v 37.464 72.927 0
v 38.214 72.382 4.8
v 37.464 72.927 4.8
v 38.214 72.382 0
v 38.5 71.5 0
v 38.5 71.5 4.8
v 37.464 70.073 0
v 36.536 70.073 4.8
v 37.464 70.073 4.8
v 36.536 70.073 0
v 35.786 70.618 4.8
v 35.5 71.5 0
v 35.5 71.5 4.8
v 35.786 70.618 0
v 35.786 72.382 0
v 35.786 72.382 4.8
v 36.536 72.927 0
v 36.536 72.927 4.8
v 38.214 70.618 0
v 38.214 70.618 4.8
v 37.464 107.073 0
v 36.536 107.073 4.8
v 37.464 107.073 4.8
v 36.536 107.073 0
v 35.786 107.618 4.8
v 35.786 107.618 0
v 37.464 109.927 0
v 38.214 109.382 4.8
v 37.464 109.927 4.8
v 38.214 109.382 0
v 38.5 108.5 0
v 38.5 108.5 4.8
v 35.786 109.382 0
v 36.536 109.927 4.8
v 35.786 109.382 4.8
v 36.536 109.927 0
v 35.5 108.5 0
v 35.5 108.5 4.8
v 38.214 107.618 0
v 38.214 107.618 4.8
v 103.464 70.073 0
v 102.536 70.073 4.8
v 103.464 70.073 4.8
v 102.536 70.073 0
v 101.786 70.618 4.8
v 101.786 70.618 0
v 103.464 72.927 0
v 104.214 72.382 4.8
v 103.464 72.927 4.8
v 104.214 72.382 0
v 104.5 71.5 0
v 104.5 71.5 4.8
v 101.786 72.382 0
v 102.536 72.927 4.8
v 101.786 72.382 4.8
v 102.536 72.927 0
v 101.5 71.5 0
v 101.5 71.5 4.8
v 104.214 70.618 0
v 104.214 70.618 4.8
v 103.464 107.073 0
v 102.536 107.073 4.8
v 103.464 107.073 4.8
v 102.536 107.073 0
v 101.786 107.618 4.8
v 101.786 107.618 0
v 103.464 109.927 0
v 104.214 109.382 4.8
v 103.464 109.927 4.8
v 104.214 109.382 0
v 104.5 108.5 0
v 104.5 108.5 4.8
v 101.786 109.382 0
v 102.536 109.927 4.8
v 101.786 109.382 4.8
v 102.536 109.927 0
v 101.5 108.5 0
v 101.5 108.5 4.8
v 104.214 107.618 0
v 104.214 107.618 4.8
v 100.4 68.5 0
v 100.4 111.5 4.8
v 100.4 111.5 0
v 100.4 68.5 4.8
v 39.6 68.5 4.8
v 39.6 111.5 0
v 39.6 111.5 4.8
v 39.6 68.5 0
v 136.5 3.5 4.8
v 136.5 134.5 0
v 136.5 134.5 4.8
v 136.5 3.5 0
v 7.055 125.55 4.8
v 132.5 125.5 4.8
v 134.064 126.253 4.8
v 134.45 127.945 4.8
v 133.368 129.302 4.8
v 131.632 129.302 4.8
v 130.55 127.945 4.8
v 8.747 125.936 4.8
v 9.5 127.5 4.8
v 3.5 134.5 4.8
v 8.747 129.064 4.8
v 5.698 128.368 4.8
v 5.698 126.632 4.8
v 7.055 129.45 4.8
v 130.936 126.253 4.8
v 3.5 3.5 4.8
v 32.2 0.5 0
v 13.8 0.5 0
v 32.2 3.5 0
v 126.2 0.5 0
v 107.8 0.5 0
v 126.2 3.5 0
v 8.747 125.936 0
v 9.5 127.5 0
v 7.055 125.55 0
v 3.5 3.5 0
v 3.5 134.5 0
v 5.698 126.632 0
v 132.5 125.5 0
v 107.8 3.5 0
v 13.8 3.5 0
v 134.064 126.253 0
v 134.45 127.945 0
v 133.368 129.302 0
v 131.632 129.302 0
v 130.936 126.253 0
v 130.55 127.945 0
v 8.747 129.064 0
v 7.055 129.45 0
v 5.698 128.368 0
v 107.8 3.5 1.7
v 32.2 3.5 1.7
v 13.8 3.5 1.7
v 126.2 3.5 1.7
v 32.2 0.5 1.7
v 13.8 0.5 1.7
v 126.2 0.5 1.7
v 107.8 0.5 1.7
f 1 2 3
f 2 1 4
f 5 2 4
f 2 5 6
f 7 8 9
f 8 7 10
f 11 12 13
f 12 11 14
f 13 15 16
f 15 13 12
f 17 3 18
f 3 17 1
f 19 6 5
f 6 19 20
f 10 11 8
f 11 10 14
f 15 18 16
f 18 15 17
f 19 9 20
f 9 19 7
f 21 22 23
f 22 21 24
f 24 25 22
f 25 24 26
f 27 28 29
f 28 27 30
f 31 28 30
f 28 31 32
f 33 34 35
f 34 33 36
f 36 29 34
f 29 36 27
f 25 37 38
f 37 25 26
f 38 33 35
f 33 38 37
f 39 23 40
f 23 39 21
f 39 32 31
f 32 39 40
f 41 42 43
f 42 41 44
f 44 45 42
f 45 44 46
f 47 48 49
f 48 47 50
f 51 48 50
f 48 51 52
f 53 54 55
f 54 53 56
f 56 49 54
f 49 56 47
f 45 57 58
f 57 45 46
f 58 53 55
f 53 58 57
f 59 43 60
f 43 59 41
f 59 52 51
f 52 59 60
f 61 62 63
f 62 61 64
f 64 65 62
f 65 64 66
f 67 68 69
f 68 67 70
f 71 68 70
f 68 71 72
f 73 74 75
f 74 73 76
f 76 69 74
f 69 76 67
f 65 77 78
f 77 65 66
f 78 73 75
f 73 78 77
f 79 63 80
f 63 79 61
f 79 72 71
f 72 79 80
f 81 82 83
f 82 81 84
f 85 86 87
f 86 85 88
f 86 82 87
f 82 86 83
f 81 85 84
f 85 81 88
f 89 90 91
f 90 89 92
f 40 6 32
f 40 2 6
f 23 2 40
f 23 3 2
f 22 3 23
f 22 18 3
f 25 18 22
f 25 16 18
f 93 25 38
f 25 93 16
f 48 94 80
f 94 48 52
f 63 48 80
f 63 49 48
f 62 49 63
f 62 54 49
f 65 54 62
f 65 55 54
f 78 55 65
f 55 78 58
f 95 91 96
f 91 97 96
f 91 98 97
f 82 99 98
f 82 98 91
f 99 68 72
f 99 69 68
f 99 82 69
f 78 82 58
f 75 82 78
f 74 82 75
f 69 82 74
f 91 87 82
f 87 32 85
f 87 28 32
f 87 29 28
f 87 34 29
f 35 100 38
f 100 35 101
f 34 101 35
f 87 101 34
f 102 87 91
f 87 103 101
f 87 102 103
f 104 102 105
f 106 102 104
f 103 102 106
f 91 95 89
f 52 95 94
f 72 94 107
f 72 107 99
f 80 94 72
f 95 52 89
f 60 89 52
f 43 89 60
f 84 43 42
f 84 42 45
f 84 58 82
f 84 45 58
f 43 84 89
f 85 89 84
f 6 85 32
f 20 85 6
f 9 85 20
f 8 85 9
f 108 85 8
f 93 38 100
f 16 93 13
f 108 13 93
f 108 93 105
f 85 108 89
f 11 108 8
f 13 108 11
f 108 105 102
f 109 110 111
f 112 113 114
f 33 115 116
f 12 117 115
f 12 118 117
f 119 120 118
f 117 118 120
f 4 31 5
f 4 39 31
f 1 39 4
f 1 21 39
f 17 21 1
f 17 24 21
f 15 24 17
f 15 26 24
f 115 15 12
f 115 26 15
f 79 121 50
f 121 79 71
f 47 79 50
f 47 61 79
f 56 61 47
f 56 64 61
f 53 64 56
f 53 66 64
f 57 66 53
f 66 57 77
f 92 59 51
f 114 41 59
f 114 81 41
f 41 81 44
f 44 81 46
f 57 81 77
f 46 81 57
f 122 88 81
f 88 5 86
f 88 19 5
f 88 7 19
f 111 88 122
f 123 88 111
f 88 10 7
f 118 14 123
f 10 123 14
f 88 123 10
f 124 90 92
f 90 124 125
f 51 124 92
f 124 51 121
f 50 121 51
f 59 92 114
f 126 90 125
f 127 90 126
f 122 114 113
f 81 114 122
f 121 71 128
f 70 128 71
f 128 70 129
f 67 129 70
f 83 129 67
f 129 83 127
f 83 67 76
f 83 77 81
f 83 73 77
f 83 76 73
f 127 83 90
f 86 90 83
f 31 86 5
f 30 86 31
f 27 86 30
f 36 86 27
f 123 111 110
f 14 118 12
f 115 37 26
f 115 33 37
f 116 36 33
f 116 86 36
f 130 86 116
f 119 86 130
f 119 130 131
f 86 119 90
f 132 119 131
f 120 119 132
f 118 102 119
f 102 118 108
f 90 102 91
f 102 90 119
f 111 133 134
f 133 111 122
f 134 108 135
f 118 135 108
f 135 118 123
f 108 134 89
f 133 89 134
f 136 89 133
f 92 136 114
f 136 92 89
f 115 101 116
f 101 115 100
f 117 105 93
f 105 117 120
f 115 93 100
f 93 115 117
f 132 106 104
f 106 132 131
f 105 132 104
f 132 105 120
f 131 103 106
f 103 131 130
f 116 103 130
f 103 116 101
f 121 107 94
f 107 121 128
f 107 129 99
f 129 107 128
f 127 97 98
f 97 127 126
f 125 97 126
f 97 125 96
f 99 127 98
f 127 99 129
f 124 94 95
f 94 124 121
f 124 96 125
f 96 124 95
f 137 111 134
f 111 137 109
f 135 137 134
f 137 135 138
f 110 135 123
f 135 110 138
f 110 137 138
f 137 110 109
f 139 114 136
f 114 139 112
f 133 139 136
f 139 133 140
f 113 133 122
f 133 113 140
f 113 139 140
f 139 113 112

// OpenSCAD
wall_thickness = 3;
case_depth = 135;
case_width = 140;
case_height = 72;

hole_radius = 2;

lid_height = 5; // Should be 5
tab_width = 20; // The width of the tabs on the lid

wall_tolerance = 1;
tab_tolerance = .8;

screw_radius = (4 / 2);
screw_length = ((15 - 5) / 2);



LCD2004_BOARD_WIDTH = 60.8;
LCD2004_BOARD_HEIGHT = 42;

module LCD2004() {
    
    screw_hole_diameter = 3;
    panel_width = LCD2004_BOARD_WIDTH;
    board_width = panel_width;
    screw_width = 66;

    panel_height = 43;
    board_height = LCD2004_BOARD_HEIGHT;
    screw_height = 37;

    screw_resolution = 10;
    
    translate([(board_width-screw_width)/2,(board_height-screw_height)/2,-0.1]) cylinder(h=screw_length, r=(screw_hole_diameter/2), $fn=screw_resolution);
    
    translate([(board_width-screw_width)/2,(board_height-screw_height)/2+screw_height,-0.1]) cylinder(h=screw_length, r=(screw_hole_diameter/2), $fn=screw_resolution);
    translate([(board_width-screw_width)/2+screw_width,(board_height-screw_height)/2,-0.1]) cylinder(h=screw_length, r=(screw_hole_diameter/2), $fn=screw_resolution);
    translate([(board_width-screw_width)/2+screw_width,(board_height-screw_height)/2+screw_height,-0.1]) cylinder(h=screw_length, r=(screw_hole_diameter/2), $fn=screw_resolution);
    
    #translate([(board_width-panel_width)/2, (board_height-panel_height)/2, -0.1]) cube([panel_width,panel_height,wall_thickness+2]);
}

module make_lcd_standoff() {
    standoff_height = 10-wall_thickness;
    screw_hole_diameter = 4;
    standoff_width = screw_hole_diameter + 4;
    screw_resolution = 10;

    difference() {
        cube([standoff_width, standoff_width, standoff_height]);
        translate([standoff_width/2, standoff_width/2, -0.1]) cylinder(h=standoff_height+1, r=(screw_hole_diameter/2), $fn=screw_resolution);
    }
}


module make_screw_triangle(screw_radius, screw_length) {
    post_width = (screw_radius * 4) + 1;
    length = screw_length;

    translate([post_width/2,post_width/2,length/2]) cylinder(h = (length+2), r1 = screw_radius, r2 = screw_radius, center=true);
}


// Now, add the screw triangles
post_width = (screw_radius * 4) + 1;

difference() {
    translate([wall_thickness+(wall_tolerance/2),wall_thickness+(wall_tolerance/2),0]) cube([case_width-(wall_thickness*2)-wall_tolerance, case_depth-wall_thickness-wall_tolerance, lid_height-.2]);
    {
        translate([wall_thickness,case_depth-wall_thickness,0]) mirror([0,1,0]) make_screw_triangle(screw_radius, screw_length);
        translate([case_width-wall_thickness,case_depth-wall_thickness,0]) mirror([1,1,0]) make_screw_triangle(screw_radius, screw_length);
        translate([(case_width-LCD2004_BOARD_WIDTH)/2,case_depth/3*2-(LCD2004_BOARD_HEIGHT/2),0]) LCD2004();    
    }
}

translate([wall_thickness+10+tab_tolerance,(wall_tolerance/2),0]) cube([tab_width-(tab_tolerance*2),wall_thickness+2,lid_height/2-tab_tolerance]);
translate([case_width-tab_width-(wall_thickness+10)+tab_tolerance,(wall_tolerance/2),0]) cube([tab_width-(tab_tolerance*2),wall_thickness+2,lid_height/2-tab_tolerance]);

//translate([case_width/2, case_depth/3*2, 0]) make_lcd_standoff();
//translate([case_width/2-15, case_depth/3*2, 0]) make_lcd_standoff();
//translate([case_width/2-30, case_depth/3*2, 0]) make_lcd_standoff();
//translate([case_width/2+15, case_depth/3*2, 0]) make_lcd_standoff();
